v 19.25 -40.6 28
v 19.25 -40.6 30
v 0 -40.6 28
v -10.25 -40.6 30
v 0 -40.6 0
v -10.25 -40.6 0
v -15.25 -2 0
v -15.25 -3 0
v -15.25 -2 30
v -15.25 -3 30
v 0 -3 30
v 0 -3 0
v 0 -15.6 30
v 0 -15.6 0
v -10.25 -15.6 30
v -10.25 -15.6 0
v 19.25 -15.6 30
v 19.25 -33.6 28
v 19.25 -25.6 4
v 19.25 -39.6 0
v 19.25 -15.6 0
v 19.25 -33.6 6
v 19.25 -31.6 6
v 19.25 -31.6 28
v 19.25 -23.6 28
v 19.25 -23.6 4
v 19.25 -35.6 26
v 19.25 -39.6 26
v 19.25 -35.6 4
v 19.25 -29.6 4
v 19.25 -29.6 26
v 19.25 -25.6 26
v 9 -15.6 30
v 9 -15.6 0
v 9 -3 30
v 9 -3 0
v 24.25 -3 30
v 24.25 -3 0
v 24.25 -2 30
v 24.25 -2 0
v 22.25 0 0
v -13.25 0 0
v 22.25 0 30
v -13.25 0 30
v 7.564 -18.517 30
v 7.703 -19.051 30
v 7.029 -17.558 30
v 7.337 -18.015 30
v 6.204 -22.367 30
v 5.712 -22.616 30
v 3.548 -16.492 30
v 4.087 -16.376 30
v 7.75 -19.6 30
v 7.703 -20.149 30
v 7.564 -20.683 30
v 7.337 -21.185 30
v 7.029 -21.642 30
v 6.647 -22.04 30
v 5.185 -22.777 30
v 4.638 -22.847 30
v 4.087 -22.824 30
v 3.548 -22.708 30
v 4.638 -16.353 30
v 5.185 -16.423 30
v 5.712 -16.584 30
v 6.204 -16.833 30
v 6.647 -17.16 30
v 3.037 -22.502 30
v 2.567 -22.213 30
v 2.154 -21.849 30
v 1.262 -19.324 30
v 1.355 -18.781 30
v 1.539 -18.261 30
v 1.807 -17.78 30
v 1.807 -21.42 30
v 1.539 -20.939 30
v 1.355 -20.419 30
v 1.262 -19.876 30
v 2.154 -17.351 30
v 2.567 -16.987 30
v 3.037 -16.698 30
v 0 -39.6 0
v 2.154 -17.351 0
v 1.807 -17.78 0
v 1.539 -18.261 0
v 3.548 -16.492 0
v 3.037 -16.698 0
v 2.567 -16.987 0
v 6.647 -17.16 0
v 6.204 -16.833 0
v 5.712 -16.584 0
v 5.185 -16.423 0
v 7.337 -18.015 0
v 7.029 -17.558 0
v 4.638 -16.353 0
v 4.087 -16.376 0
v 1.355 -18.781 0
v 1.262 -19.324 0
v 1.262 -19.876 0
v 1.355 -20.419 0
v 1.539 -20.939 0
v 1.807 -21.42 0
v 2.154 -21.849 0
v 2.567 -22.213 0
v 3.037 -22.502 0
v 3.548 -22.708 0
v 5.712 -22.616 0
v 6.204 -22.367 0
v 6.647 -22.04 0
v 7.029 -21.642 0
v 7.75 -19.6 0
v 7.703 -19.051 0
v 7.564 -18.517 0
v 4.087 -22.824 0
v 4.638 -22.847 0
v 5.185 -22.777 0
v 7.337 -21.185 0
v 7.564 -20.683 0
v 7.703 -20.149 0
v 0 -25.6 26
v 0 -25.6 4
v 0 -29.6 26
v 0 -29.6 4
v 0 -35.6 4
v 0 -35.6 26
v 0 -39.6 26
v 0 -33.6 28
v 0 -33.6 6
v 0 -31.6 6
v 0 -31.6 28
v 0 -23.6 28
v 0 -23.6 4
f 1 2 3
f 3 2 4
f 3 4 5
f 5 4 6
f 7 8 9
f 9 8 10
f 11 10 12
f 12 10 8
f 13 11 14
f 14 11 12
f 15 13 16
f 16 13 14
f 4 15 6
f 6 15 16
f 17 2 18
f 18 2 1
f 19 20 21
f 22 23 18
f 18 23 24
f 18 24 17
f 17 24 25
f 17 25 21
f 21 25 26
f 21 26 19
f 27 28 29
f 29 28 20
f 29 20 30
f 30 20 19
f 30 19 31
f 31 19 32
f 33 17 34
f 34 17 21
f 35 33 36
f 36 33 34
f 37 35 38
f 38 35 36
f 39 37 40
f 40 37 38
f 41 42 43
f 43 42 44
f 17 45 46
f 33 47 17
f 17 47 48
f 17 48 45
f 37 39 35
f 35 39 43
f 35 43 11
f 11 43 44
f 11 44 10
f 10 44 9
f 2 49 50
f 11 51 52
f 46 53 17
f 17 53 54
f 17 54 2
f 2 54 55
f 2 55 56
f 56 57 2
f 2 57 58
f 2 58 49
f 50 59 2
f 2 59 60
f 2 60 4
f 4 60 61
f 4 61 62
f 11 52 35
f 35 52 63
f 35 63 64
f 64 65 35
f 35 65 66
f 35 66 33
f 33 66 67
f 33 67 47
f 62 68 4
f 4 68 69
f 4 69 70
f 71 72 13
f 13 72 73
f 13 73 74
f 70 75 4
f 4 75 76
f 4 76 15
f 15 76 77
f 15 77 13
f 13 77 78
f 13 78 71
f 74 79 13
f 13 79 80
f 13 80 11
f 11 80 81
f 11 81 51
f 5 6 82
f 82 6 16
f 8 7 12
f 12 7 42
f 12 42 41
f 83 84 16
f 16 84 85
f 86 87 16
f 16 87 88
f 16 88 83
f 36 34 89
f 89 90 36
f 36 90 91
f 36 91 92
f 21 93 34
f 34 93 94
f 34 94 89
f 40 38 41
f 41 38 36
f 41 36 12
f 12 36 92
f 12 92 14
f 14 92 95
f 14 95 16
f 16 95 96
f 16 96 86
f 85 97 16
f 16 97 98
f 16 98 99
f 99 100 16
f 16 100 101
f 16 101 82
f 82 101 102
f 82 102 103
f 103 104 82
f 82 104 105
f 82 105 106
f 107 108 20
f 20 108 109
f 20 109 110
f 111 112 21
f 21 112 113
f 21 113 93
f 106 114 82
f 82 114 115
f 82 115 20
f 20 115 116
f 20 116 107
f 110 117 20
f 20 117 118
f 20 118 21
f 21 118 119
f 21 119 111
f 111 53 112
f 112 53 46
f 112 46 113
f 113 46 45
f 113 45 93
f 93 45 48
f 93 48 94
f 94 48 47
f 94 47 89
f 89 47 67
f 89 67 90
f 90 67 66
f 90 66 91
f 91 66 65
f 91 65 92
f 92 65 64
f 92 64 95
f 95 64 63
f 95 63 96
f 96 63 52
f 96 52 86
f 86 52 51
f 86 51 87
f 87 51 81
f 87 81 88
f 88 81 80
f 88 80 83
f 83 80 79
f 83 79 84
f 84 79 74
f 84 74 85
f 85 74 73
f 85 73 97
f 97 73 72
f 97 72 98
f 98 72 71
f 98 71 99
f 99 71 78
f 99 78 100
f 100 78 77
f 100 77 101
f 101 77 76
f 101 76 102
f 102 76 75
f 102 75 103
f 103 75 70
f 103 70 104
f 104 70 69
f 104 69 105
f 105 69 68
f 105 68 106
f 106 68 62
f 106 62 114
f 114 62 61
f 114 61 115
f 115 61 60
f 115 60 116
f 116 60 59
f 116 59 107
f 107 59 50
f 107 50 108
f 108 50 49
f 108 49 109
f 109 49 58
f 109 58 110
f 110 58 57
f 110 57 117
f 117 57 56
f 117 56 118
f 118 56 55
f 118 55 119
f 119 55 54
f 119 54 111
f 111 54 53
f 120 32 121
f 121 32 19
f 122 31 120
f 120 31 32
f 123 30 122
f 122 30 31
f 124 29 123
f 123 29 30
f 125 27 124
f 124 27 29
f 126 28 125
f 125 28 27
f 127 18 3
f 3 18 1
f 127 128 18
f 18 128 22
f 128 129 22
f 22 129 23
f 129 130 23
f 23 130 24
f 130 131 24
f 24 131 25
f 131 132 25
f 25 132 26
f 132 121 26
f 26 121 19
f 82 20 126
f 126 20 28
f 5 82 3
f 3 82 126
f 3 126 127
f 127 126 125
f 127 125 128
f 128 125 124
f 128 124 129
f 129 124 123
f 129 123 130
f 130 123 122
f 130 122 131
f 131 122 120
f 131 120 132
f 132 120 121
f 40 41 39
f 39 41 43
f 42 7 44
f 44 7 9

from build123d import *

# Parameters (mm, degrees)
BOSS_EXTRUDE1_DEPTH          = 30
SKETCH2_R                    = 3.25
CUT_EXTRUDE1_DEPTH           = 36
CUT_EXTRUDE_THIN1_DEPTH      = 62.144173884
CUT_EXTRUDE_THIN1_DEPTH_BACK = 19.25
CHAMFER2_SIZE                = 2


with BuildPart() as part:
    # Sketch1 → Boss-Extrude1 (new body)
    with BuildSketch(Plane.XY):
        Polygon((0, 0), (-10.25, 0), (-15.25, 0), (-15.25, -3), (-10.25, -3), (0, -3), (0, -15.6), (-10.25, -15.6), (-10.25, -40.6), (19.25, -40.6), (19.25, -15.6), (9, -15.6), (9, -3), (19.25, -3), (24.25, -3), (24.25, 0), (19.25, 0), (9, 0), align=None)
    extrude(amount=BOSS_EXTRUDE1_DEPTH)

    # Sketch2 → Cut-Extrude1 (cut)
    with BuildSketch(Plane.XY.offset(30)):
        with Locations((4.5, -19.6)):
            Circle(SKETCH2_R)
    extrude(amount=-CUT_EXTRUDE1_DEPTH, mode=Mode.SUBTRACT)

    # Sketch3 → Cut-Extrude-Thin1 (cut, two sides: drawn at the far end of the back side and taken through both)
    with BuildSketch(Plane(origin=(19.25, 0, 0), x_dir=(0, 0, -1), z_dir=(1, 0, 0)).offset(-CUT_EXTRUDE_THIN1_DEPTH_BACK)):
        Polygon((0, -39.6), (-26, -39.6), (-26, -35.6), (-4, -35.6), (-4, -29.6), (-26, -29.6), (-26, -25.6), (-4, -25.6), (-4, -23.6), (-28, -23.6), (-28, -31.6), (-6, -31.6), (-6, -33.6), (-28, -33.6), (-28, -41.6), (0, -41.6), align=None)
    extrude(amount=CUT_EXTRUDE_THIN1_DEPTH + CUT_EXTRUDE_THIN1_DEPTH_BACK, mode=Mode.SUBTRACT)

    # Chamfer2
    chamfer2_edges = [part.edges().sort_by_distance(p)[0] for p in [
        (24.25, 0, 15),
        (-15.25, 0, 15),
    ]]
    chamfer(chamfer2_edges, length=CHAMFER2_SIZE)


solid = part.part
